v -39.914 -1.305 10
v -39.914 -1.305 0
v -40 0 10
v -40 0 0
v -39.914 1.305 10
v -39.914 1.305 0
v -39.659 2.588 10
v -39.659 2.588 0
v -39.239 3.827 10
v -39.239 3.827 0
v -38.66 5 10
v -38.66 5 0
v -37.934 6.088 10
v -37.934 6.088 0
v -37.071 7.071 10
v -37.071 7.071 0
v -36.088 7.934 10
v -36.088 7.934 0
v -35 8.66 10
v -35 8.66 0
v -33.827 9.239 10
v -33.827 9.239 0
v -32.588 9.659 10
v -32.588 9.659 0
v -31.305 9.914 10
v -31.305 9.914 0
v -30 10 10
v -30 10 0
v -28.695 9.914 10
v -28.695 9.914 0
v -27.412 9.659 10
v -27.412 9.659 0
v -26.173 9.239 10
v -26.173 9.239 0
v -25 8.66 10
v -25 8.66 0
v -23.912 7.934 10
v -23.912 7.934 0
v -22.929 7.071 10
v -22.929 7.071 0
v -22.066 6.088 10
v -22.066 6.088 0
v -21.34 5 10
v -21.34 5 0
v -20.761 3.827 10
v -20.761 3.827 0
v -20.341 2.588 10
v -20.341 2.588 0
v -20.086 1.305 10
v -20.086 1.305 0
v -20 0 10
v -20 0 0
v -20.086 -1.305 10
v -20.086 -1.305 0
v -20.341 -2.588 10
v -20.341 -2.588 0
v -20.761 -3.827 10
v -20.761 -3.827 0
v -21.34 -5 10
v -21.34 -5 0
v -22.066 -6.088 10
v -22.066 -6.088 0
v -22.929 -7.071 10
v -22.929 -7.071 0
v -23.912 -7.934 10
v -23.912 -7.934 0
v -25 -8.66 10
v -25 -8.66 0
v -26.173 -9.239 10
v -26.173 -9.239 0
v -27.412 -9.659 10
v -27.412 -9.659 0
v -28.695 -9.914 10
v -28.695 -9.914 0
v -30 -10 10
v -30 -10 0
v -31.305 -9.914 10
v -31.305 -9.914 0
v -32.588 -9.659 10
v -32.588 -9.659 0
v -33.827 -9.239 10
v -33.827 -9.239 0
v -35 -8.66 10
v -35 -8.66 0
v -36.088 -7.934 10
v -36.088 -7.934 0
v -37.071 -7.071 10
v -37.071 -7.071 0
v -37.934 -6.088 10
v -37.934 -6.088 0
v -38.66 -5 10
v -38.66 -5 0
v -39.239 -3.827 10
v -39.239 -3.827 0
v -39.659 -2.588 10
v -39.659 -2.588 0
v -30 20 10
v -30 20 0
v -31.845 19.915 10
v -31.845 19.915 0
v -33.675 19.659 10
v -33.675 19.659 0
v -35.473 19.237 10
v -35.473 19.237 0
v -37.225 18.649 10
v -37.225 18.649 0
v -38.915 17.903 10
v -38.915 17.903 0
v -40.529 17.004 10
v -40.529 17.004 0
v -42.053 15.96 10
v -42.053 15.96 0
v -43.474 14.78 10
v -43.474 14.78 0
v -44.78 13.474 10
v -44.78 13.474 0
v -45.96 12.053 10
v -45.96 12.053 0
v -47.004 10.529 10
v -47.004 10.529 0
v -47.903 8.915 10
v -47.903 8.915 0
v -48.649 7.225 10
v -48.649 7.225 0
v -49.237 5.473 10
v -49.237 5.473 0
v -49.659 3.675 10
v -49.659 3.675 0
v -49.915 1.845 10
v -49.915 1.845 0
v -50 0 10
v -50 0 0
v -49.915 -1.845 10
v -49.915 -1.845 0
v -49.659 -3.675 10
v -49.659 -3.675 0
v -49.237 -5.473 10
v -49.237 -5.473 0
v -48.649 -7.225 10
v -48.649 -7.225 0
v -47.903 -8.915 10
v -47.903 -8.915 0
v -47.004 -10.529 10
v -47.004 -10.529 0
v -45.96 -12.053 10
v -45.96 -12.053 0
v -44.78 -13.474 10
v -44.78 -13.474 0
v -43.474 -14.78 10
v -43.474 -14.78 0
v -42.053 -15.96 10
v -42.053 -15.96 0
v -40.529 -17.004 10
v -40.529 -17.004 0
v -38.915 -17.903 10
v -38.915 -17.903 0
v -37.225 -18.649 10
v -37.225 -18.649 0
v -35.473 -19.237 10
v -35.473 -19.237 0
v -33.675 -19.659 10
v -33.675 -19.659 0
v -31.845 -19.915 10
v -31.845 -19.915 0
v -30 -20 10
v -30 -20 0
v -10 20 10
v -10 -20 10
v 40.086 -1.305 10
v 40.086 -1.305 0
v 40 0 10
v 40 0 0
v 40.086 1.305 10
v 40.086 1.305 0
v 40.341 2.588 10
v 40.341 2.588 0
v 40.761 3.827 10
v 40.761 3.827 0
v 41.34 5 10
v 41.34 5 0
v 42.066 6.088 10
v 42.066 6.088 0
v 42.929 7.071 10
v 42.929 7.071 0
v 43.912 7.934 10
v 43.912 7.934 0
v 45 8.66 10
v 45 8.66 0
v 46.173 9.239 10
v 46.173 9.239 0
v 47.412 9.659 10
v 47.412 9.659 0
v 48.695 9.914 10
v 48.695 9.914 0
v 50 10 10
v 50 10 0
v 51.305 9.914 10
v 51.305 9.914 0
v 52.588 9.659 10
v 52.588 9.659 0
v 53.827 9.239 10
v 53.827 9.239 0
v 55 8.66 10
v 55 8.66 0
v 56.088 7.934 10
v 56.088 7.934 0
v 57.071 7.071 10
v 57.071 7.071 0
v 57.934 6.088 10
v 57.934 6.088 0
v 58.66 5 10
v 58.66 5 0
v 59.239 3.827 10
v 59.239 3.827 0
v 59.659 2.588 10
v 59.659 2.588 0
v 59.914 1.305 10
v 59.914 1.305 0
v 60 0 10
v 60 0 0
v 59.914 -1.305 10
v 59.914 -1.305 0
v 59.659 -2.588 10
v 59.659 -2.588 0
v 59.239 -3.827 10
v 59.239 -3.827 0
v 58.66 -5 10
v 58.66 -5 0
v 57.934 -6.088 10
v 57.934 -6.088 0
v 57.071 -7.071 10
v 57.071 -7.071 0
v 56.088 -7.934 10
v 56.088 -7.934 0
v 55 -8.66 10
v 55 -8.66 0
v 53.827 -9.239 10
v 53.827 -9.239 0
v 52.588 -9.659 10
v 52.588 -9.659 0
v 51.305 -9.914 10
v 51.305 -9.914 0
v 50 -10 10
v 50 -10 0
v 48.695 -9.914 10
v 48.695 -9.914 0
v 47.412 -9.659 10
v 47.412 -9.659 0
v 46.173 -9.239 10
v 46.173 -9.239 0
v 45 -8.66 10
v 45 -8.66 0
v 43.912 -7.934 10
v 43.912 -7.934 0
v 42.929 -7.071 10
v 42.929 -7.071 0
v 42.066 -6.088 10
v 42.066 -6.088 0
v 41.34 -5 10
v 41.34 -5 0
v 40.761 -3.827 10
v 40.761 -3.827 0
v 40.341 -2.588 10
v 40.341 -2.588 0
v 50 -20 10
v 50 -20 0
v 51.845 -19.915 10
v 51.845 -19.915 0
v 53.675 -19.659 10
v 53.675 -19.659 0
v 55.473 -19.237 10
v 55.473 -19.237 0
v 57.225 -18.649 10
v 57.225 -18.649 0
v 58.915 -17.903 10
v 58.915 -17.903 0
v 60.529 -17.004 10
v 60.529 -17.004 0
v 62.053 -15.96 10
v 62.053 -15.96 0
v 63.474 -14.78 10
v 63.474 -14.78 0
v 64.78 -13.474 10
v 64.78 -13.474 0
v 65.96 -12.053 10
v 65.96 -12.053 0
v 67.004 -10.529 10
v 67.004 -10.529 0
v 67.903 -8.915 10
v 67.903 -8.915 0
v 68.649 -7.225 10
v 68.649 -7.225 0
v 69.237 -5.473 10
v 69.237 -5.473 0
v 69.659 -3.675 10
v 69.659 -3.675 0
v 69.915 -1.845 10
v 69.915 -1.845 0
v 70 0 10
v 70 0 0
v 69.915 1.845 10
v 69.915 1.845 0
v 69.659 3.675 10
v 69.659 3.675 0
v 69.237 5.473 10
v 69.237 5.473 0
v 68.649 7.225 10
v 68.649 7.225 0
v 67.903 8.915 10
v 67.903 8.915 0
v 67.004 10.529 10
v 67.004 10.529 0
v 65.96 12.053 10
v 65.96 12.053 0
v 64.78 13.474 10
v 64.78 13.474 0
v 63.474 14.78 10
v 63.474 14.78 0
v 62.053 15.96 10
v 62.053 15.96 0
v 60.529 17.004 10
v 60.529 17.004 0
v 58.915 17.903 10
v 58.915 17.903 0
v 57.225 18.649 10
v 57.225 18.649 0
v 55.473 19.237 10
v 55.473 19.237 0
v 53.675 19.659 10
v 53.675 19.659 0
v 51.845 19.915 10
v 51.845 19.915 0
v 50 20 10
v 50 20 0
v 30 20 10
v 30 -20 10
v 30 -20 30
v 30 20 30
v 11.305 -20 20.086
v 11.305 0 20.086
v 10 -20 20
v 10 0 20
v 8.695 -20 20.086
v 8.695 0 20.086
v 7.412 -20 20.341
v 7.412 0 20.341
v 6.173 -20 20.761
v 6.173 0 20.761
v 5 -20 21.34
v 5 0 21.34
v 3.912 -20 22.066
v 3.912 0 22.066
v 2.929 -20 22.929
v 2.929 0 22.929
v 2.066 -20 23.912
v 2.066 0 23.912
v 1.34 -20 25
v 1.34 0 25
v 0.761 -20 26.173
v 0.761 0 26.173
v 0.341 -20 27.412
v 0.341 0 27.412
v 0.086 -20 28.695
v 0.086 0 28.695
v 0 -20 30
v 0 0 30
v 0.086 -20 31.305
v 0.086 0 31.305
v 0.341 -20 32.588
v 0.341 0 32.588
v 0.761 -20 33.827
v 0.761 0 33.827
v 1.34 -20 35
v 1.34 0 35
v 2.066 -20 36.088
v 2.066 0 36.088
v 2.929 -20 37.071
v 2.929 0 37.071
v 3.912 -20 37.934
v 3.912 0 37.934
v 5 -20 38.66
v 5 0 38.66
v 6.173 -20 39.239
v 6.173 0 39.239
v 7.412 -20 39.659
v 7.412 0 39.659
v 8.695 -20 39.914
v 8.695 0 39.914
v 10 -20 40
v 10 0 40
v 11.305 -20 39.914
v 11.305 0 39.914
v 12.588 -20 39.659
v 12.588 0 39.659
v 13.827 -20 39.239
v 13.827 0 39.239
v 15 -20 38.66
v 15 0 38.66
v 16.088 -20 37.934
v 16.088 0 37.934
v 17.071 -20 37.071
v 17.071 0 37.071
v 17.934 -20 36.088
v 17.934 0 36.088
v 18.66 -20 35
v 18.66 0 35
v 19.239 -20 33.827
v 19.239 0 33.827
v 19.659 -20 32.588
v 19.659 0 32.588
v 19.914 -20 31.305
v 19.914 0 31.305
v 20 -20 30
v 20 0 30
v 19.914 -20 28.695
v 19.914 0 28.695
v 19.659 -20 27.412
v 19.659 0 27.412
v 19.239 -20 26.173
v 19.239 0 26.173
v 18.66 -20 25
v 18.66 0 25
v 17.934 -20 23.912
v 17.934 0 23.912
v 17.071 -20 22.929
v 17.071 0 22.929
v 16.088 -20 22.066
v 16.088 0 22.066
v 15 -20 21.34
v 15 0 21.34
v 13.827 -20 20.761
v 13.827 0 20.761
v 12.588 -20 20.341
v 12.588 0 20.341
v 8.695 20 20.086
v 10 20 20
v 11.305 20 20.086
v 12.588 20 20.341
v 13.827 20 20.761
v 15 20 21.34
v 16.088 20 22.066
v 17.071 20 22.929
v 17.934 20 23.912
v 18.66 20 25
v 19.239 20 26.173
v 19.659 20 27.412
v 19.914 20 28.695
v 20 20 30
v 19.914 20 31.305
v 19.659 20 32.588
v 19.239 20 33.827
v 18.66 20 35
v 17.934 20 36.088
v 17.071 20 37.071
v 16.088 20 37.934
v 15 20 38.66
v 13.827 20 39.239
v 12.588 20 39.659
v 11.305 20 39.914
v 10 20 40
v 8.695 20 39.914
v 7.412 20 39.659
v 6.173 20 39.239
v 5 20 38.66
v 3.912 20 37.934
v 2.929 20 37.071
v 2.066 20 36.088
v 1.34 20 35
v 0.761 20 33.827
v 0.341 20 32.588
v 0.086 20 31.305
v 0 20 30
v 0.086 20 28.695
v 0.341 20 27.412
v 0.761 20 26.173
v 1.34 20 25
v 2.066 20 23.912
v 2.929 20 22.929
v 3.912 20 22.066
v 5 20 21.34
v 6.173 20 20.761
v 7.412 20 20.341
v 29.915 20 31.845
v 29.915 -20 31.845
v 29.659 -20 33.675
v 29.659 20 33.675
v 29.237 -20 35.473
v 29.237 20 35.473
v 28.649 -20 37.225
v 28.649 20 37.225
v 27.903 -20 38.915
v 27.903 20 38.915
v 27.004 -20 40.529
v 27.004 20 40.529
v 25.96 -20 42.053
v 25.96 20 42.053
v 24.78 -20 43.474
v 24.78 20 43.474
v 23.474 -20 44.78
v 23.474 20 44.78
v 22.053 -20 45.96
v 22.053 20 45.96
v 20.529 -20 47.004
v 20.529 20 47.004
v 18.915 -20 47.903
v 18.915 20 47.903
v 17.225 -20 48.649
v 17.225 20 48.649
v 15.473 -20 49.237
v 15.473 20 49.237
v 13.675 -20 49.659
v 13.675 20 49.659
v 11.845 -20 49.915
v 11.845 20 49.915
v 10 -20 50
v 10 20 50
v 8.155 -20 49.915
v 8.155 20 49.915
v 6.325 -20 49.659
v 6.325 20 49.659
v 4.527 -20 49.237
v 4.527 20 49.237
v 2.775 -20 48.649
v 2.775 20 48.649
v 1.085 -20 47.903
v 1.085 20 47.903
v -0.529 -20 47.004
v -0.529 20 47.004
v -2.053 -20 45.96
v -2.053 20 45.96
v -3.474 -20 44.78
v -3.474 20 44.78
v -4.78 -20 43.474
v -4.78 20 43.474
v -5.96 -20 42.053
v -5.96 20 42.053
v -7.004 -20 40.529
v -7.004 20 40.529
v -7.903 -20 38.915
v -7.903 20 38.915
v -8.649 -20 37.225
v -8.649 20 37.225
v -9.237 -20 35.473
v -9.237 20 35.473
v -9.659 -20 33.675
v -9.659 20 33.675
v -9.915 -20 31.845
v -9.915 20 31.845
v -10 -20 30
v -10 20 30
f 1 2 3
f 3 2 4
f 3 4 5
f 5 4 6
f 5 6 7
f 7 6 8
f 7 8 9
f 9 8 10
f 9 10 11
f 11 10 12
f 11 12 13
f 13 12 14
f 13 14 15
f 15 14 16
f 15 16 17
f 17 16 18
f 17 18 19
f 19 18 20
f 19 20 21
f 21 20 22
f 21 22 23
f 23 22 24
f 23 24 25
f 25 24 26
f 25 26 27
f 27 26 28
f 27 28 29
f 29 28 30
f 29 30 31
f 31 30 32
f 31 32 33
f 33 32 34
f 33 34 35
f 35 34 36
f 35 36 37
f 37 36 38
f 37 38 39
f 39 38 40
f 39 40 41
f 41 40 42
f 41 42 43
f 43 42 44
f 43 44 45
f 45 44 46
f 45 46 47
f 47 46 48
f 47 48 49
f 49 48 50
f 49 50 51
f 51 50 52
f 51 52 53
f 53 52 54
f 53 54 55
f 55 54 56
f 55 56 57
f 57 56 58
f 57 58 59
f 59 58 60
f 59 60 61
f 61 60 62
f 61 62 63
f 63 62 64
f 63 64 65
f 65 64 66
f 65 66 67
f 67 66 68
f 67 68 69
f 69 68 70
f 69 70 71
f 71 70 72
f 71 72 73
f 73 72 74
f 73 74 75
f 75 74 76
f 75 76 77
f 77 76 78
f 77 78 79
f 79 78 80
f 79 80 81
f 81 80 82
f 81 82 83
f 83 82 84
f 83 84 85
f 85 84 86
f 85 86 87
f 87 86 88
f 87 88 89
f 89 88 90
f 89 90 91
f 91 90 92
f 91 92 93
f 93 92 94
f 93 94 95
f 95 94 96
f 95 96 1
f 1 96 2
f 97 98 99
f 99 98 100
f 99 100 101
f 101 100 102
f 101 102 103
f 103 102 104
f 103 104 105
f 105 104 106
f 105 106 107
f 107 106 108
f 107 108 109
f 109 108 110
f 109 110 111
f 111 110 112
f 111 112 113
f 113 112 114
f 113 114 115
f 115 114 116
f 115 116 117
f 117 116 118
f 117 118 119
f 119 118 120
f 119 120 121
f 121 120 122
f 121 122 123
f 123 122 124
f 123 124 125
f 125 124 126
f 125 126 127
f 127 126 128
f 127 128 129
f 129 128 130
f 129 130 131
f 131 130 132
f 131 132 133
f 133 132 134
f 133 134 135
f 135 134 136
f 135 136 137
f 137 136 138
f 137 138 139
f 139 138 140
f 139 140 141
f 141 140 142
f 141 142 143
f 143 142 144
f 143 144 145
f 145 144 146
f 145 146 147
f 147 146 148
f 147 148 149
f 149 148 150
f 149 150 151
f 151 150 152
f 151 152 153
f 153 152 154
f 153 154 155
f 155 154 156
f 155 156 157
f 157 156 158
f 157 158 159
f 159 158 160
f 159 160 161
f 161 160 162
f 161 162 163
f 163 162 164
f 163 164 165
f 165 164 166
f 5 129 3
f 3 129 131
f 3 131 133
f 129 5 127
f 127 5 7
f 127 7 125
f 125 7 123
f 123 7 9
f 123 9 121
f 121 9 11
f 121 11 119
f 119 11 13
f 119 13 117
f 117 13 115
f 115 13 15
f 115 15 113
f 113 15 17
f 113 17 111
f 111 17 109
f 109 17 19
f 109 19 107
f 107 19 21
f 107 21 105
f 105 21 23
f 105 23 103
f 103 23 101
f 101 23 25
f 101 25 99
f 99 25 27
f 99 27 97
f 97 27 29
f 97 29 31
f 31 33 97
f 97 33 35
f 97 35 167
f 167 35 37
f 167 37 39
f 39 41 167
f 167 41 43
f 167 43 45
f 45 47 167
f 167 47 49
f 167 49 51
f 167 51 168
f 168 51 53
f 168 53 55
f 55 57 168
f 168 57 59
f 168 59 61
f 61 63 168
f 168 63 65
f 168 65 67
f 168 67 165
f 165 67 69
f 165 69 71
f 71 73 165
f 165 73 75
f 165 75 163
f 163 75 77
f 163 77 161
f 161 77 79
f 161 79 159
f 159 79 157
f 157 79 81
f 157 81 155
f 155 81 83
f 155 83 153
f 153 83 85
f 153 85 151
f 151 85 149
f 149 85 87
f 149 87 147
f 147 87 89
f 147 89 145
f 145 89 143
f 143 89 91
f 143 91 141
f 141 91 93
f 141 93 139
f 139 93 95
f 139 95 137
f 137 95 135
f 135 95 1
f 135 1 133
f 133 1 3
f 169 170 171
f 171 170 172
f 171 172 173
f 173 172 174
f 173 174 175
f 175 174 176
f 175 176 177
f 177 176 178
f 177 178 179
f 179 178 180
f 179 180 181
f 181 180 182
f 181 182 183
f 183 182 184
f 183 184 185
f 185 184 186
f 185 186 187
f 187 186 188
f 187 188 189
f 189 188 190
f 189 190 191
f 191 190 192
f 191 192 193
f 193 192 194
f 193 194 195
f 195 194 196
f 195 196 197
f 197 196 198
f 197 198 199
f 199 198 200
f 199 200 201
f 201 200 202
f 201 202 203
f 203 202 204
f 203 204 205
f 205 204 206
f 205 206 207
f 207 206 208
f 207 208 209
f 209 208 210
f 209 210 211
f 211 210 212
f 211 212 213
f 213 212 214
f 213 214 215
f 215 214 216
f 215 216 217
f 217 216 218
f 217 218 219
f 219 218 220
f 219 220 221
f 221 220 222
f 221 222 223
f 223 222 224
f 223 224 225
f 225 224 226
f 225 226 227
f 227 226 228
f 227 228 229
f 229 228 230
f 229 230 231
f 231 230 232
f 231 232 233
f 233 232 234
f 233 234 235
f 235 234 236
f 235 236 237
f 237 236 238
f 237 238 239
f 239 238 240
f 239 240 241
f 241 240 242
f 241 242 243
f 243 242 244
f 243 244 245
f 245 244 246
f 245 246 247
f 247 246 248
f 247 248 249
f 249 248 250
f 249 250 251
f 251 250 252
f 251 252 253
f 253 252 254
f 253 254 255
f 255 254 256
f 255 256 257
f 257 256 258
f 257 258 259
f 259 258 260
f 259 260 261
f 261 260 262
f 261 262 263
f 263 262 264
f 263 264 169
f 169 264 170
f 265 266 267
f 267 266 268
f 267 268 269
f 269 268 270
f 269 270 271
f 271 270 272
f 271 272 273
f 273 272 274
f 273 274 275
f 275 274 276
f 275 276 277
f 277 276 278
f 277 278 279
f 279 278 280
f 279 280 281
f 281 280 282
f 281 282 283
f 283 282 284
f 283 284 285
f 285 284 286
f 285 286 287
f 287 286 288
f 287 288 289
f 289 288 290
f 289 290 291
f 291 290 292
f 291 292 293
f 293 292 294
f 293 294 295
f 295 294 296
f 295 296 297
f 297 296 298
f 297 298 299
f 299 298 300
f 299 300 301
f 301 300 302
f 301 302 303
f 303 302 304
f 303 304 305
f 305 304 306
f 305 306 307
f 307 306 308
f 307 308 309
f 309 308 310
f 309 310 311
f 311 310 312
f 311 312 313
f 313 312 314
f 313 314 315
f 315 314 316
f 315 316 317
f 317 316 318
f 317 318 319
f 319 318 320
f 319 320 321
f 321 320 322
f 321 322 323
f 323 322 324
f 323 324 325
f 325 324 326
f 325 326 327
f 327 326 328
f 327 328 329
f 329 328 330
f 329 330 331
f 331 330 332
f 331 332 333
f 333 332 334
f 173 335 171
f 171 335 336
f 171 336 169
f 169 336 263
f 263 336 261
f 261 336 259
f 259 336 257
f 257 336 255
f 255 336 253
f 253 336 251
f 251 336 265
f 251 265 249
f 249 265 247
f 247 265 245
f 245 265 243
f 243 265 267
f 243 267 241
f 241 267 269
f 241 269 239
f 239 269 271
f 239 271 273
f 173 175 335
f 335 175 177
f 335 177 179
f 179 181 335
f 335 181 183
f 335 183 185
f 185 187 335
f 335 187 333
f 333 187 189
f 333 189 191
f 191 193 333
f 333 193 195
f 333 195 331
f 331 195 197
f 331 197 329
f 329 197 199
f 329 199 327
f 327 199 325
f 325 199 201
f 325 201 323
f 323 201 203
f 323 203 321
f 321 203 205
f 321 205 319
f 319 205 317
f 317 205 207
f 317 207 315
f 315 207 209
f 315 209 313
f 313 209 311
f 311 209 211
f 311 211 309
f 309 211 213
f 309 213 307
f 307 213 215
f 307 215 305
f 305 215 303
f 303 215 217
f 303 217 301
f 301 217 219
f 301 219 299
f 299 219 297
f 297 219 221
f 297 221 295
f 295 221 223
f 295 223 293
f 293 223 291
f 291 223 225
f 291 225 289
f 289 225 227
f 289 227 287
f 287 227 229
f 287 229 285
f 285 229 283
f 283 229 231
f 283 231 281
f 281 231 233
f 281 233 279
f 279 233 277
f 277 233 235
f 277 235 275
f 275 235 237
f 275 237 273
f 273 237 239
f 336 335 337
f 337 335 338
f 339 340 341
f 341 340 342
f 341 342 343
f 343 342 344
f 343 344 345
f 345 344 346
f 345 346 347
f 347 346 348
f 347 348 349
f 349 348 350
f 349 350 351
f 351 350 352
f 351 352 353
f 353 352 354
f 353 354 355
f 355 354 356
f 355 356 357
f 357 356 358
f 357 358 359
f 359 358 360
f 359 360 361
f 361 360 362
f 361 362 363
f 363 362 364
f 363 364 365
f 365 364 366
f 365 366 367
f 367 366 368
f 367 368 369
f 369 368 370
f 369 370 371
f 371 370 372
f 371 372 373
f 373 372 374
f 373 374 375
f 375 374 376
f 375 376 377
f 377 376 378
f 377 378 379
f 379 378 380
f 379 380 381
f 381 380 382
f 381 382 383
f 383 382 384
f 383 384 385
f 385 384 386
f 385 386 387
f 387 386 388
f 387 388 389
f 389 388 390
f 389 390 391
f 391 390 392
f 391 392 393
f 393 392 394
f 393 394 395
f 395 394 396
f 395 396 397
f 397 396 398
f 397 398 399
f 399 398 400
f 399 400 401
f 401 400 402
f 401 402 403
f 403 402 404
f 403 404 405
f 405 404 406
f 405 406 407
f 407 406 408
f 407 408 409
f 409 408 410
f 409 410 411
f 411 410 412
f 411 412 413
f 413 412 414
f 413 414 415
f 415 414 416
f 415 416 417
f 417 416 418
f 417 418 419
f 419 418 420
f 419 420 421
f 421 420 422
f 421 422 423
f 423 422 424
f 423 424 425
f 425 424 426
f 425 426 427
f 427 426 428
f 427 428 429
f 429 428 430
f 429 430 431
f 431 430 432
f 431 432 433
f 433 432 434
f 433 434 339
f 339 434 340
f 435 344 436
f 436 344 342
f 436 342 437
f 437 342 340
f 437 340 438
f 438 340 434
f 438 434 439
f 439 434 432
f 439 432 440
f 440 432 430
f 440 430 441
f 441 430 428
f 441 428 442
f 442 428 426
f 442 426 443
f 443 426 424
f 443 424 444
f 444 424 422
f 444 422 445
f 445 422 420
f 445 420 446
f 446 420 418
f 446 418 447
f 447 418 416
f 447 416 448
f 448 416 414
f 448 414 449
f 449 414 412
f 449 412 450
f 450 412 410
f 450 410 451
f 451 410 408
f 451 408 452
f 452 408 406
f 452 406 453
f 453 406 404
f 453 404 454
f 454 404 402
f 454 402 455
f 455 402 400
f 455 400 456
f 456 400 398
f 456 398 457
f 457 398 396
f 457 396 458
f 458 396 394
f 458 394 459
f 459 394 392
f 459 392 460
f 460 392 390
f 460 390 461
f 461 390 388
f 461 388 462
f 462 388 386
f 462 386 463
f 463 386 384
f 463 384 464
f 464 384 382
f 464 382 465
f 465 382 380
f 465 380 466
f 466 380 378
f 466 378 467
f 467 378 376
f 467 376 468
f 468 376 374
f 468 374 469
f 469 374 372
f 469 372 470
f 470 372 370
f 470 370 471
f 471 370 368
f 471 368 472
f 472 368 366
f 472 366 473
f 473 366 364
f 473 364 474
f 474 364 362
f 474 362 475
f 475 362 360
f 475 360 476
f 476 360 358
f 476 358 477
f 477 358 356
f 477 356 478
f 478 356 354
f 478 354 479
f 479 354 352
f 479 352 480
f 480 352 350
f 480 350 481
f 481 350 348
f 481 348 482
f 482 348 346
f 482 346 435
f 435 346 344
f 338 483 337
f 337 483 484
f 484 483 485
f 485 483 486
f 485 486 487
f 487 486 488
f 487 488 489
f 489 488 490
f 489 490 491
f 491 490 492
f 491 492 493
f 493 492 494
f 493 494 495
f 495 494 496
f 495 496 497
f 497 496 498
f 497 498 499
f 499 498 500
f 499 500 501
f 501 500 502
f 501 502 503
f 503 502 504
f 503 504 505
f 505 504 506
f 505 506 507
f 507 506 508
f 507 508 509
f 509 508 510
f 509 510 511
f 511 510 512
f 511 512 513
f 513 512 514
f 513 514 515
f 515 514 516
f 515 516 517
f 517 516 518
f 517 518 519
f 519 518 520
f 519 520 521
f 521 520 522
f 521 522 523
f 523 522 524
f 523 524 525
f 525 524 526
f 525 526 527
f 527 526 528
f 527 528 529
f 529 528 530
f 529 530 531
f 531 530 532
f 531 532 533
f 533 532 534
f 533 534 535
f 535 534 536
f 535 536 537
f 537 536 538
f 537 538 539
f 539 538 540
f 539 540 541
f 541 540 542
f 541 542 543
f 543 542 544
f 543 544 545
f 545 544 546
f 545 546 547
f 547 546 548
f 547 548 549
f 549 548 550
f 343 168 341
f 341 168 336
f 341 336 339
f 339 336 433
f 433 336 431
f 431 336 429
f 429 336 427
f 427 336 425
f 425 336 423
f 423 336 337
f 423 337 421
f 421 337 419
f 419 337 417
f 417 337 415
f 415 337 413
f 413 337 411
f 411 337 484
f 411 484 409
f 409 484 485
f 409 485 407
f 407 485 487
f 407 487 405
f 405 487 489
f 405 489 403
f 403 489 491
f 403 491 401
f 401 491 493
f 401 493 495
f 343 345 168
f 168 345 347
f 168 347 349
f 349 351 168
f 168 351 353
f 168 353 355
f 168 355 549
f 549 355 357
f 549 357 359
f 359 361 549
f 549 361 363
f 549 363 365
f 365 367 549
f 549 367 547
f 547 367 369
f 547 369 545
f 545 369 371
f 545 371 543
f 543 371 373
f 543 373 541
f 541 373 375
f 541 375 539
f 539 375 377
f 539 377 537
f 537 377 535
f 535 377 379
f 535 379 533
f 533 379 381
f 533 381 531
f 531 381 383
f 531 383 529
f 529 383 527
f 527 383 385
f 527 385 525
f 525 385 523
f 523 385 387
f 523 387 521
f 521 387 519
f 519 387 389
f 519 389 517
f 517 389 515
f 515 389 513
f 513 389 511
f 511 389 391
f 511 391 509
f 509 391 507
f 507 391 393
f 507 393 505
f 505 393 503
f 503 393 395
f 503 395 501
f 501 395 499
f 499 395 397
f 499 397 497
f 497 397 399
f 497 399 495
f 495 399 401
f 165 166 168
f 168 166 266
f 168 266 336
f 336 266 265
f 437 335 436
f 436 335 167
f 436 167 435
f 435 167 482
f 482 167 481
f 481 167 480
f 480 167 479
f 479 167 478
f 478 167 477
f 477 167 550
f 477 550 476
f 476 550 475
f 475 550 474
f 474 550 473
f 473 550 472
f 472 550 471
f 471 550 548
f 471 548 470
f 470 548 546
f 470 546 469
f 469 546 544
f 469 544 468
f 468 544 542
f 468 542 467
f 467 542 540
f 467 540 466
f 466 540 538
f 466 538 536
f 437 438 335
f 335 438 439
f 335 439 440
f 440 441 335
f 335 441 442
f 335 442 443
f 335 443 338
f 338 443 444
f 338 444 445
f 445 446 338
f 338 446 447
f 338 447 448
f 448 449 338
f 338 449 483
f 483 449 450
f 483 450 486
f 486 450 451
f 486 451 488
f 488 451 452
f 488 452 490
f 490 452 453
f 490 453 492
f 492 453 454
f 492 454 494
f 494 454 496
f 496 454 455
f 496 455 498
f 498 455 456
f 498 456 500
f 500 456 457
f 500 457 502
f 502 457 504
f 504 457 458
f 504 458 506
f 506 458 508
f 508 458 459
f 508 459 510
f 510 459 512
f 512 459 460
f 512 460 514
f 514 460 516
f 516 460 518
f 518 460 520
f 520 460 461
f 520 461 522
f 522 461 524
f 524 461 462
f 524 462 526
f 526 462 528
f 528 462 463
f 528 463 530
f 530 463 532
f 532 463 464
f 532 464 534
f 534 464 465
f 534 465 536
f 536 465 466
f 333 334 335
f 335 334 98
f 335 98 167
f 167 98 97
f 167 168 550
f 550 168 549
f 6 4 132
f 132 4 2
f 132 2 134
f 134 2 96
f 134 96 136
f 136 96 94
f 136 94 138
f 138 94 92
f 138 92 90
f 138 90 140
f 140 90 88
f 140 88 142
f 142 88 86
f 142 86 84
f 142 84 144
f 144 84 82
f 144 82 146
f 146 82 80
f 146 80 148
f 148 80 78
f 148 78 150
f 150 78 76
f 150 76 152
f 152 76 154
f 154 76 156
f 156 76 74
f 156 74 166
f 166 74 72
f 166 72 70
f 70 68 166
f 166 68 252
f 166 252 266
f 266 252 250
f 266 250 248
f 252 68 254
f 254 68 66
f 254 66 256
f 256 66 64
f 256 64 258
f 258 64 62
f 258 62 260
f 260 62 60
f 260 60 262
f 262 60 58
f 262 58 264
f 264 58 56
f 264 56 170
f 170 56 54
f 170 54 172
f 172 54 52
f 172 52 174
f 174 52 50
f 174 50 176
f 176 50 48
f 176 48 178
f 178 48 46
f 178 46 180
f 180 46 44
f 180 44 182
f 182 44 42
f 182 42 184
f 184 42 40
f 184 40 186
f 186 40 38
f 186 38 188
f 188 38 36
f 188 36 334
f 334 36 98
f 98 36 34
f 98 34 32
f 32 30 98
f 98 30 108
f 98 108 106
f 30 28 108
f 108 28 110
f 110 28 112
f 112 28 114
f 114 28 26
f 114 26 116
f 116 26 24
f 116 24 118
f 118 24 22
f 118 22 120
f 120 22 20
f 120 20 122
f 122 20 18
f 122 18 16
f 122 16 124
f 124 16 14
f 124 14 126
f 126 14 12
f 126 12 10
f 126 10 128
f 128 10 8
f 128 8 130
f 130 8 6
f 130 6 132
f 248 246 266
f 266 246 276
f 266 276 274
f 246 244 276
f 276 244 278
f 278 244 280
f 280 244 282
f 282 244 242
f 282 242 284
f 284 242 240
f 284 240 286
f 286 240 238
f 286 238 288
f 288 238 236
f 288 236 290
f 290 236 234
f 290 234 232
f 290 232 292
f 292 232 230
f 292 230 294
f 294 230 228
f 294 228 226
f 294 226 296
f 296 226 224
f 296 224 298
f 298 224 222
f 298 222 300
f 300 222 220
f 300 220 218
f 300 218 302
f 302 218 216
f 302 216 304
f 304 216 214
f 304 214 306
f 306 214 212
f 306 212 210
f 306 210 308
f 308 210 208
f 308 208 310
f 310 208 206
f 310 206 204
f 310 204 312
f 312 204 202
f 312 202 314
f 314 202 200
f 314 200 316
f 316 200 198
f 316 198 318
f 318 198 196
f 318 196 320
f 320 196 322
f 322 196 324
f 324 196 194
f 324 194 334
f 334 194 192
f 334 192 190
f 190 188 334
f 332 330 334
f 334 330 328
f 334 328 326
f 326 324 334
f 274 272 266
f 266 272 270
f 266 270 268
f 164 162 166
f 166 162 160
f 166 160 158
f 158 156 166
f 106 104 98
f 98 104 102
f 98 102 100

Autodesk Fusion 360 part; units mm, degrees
sketch "Sketch1" plane through (0, 0, 0) normal (1, 0, 0) x (0, 1, 0)
sketch "Sketch2" plane through (0, 0, 0) normal (0, 0, 1) x (1, 0, 0)
  line L0 (-30, 20) -> (50, 20)
  line L1 (50, 20) -> (50, -20)
  line L2 (50, -20) -> (-30, -20)
  line L3 (-30, -20) -> (-30, 20)
  line L4 (-30, -20) -> (-10, -20)
  line L5 (50, -20) -> (30, -20)
  line L6 (-10, -20) -> (30, -20)
  line L7 (30, -20) -> (30, 20)
  line L8 (30, 20) -> (-10, 20)
  line L9 (-10, 20) -> (-10, -20)
  arc A0 (-30, 20) -> (-30, -20) centre (-30, 0) ccw
  line L10 (50, 20) -> (50, -20)
  arc A1 (50, -20) -> (50, 20) centre (50, 0) ccw
  circle A2 centre (-30, 0) radius 10
  circle A3 centre (50, 0) radius 10
  dimension "d1" = 80
  dimension "d2" = 40
  dimension "d3" = 20
  dimension "d4" = 20
  dimension "d5" = 20
  dimension "d6" = 20
extrude "Extrude2" add sketch "Sketch2" along normal blind 30 contours L0 L2 L6 L7 L8 L9 makes body 1
extrude "Extrude1" add sketch "Sketch2" along normal blind 10 separate body contours L0 L2 L3 L4 L9 A2 | L3 A0 A2 | L0 L1 L2 L5 L7 L10 A3 | L1 L10 A1 A3 makes body 2 at (-13.3333, 0, 10) makes body 3 at (33.3333, 0, 0)
sketch "Sketch3" plane through (0, 0, 0) normal (0, 1, 0) x (1, 0, 0)
  circle A0 centre (10, -30) radius 20
extrude "Extrude3" add sketch "Sketch3" along normal blind 20 and the other way blind 20 bodies 1
hole "Hole1" at (10, -20, 30) direction (0, 1, 0) diameter 20 depth 40 tip angle 180 bodies 1
combine "Combine1" operation add target body 1 tool bodies 3 2
